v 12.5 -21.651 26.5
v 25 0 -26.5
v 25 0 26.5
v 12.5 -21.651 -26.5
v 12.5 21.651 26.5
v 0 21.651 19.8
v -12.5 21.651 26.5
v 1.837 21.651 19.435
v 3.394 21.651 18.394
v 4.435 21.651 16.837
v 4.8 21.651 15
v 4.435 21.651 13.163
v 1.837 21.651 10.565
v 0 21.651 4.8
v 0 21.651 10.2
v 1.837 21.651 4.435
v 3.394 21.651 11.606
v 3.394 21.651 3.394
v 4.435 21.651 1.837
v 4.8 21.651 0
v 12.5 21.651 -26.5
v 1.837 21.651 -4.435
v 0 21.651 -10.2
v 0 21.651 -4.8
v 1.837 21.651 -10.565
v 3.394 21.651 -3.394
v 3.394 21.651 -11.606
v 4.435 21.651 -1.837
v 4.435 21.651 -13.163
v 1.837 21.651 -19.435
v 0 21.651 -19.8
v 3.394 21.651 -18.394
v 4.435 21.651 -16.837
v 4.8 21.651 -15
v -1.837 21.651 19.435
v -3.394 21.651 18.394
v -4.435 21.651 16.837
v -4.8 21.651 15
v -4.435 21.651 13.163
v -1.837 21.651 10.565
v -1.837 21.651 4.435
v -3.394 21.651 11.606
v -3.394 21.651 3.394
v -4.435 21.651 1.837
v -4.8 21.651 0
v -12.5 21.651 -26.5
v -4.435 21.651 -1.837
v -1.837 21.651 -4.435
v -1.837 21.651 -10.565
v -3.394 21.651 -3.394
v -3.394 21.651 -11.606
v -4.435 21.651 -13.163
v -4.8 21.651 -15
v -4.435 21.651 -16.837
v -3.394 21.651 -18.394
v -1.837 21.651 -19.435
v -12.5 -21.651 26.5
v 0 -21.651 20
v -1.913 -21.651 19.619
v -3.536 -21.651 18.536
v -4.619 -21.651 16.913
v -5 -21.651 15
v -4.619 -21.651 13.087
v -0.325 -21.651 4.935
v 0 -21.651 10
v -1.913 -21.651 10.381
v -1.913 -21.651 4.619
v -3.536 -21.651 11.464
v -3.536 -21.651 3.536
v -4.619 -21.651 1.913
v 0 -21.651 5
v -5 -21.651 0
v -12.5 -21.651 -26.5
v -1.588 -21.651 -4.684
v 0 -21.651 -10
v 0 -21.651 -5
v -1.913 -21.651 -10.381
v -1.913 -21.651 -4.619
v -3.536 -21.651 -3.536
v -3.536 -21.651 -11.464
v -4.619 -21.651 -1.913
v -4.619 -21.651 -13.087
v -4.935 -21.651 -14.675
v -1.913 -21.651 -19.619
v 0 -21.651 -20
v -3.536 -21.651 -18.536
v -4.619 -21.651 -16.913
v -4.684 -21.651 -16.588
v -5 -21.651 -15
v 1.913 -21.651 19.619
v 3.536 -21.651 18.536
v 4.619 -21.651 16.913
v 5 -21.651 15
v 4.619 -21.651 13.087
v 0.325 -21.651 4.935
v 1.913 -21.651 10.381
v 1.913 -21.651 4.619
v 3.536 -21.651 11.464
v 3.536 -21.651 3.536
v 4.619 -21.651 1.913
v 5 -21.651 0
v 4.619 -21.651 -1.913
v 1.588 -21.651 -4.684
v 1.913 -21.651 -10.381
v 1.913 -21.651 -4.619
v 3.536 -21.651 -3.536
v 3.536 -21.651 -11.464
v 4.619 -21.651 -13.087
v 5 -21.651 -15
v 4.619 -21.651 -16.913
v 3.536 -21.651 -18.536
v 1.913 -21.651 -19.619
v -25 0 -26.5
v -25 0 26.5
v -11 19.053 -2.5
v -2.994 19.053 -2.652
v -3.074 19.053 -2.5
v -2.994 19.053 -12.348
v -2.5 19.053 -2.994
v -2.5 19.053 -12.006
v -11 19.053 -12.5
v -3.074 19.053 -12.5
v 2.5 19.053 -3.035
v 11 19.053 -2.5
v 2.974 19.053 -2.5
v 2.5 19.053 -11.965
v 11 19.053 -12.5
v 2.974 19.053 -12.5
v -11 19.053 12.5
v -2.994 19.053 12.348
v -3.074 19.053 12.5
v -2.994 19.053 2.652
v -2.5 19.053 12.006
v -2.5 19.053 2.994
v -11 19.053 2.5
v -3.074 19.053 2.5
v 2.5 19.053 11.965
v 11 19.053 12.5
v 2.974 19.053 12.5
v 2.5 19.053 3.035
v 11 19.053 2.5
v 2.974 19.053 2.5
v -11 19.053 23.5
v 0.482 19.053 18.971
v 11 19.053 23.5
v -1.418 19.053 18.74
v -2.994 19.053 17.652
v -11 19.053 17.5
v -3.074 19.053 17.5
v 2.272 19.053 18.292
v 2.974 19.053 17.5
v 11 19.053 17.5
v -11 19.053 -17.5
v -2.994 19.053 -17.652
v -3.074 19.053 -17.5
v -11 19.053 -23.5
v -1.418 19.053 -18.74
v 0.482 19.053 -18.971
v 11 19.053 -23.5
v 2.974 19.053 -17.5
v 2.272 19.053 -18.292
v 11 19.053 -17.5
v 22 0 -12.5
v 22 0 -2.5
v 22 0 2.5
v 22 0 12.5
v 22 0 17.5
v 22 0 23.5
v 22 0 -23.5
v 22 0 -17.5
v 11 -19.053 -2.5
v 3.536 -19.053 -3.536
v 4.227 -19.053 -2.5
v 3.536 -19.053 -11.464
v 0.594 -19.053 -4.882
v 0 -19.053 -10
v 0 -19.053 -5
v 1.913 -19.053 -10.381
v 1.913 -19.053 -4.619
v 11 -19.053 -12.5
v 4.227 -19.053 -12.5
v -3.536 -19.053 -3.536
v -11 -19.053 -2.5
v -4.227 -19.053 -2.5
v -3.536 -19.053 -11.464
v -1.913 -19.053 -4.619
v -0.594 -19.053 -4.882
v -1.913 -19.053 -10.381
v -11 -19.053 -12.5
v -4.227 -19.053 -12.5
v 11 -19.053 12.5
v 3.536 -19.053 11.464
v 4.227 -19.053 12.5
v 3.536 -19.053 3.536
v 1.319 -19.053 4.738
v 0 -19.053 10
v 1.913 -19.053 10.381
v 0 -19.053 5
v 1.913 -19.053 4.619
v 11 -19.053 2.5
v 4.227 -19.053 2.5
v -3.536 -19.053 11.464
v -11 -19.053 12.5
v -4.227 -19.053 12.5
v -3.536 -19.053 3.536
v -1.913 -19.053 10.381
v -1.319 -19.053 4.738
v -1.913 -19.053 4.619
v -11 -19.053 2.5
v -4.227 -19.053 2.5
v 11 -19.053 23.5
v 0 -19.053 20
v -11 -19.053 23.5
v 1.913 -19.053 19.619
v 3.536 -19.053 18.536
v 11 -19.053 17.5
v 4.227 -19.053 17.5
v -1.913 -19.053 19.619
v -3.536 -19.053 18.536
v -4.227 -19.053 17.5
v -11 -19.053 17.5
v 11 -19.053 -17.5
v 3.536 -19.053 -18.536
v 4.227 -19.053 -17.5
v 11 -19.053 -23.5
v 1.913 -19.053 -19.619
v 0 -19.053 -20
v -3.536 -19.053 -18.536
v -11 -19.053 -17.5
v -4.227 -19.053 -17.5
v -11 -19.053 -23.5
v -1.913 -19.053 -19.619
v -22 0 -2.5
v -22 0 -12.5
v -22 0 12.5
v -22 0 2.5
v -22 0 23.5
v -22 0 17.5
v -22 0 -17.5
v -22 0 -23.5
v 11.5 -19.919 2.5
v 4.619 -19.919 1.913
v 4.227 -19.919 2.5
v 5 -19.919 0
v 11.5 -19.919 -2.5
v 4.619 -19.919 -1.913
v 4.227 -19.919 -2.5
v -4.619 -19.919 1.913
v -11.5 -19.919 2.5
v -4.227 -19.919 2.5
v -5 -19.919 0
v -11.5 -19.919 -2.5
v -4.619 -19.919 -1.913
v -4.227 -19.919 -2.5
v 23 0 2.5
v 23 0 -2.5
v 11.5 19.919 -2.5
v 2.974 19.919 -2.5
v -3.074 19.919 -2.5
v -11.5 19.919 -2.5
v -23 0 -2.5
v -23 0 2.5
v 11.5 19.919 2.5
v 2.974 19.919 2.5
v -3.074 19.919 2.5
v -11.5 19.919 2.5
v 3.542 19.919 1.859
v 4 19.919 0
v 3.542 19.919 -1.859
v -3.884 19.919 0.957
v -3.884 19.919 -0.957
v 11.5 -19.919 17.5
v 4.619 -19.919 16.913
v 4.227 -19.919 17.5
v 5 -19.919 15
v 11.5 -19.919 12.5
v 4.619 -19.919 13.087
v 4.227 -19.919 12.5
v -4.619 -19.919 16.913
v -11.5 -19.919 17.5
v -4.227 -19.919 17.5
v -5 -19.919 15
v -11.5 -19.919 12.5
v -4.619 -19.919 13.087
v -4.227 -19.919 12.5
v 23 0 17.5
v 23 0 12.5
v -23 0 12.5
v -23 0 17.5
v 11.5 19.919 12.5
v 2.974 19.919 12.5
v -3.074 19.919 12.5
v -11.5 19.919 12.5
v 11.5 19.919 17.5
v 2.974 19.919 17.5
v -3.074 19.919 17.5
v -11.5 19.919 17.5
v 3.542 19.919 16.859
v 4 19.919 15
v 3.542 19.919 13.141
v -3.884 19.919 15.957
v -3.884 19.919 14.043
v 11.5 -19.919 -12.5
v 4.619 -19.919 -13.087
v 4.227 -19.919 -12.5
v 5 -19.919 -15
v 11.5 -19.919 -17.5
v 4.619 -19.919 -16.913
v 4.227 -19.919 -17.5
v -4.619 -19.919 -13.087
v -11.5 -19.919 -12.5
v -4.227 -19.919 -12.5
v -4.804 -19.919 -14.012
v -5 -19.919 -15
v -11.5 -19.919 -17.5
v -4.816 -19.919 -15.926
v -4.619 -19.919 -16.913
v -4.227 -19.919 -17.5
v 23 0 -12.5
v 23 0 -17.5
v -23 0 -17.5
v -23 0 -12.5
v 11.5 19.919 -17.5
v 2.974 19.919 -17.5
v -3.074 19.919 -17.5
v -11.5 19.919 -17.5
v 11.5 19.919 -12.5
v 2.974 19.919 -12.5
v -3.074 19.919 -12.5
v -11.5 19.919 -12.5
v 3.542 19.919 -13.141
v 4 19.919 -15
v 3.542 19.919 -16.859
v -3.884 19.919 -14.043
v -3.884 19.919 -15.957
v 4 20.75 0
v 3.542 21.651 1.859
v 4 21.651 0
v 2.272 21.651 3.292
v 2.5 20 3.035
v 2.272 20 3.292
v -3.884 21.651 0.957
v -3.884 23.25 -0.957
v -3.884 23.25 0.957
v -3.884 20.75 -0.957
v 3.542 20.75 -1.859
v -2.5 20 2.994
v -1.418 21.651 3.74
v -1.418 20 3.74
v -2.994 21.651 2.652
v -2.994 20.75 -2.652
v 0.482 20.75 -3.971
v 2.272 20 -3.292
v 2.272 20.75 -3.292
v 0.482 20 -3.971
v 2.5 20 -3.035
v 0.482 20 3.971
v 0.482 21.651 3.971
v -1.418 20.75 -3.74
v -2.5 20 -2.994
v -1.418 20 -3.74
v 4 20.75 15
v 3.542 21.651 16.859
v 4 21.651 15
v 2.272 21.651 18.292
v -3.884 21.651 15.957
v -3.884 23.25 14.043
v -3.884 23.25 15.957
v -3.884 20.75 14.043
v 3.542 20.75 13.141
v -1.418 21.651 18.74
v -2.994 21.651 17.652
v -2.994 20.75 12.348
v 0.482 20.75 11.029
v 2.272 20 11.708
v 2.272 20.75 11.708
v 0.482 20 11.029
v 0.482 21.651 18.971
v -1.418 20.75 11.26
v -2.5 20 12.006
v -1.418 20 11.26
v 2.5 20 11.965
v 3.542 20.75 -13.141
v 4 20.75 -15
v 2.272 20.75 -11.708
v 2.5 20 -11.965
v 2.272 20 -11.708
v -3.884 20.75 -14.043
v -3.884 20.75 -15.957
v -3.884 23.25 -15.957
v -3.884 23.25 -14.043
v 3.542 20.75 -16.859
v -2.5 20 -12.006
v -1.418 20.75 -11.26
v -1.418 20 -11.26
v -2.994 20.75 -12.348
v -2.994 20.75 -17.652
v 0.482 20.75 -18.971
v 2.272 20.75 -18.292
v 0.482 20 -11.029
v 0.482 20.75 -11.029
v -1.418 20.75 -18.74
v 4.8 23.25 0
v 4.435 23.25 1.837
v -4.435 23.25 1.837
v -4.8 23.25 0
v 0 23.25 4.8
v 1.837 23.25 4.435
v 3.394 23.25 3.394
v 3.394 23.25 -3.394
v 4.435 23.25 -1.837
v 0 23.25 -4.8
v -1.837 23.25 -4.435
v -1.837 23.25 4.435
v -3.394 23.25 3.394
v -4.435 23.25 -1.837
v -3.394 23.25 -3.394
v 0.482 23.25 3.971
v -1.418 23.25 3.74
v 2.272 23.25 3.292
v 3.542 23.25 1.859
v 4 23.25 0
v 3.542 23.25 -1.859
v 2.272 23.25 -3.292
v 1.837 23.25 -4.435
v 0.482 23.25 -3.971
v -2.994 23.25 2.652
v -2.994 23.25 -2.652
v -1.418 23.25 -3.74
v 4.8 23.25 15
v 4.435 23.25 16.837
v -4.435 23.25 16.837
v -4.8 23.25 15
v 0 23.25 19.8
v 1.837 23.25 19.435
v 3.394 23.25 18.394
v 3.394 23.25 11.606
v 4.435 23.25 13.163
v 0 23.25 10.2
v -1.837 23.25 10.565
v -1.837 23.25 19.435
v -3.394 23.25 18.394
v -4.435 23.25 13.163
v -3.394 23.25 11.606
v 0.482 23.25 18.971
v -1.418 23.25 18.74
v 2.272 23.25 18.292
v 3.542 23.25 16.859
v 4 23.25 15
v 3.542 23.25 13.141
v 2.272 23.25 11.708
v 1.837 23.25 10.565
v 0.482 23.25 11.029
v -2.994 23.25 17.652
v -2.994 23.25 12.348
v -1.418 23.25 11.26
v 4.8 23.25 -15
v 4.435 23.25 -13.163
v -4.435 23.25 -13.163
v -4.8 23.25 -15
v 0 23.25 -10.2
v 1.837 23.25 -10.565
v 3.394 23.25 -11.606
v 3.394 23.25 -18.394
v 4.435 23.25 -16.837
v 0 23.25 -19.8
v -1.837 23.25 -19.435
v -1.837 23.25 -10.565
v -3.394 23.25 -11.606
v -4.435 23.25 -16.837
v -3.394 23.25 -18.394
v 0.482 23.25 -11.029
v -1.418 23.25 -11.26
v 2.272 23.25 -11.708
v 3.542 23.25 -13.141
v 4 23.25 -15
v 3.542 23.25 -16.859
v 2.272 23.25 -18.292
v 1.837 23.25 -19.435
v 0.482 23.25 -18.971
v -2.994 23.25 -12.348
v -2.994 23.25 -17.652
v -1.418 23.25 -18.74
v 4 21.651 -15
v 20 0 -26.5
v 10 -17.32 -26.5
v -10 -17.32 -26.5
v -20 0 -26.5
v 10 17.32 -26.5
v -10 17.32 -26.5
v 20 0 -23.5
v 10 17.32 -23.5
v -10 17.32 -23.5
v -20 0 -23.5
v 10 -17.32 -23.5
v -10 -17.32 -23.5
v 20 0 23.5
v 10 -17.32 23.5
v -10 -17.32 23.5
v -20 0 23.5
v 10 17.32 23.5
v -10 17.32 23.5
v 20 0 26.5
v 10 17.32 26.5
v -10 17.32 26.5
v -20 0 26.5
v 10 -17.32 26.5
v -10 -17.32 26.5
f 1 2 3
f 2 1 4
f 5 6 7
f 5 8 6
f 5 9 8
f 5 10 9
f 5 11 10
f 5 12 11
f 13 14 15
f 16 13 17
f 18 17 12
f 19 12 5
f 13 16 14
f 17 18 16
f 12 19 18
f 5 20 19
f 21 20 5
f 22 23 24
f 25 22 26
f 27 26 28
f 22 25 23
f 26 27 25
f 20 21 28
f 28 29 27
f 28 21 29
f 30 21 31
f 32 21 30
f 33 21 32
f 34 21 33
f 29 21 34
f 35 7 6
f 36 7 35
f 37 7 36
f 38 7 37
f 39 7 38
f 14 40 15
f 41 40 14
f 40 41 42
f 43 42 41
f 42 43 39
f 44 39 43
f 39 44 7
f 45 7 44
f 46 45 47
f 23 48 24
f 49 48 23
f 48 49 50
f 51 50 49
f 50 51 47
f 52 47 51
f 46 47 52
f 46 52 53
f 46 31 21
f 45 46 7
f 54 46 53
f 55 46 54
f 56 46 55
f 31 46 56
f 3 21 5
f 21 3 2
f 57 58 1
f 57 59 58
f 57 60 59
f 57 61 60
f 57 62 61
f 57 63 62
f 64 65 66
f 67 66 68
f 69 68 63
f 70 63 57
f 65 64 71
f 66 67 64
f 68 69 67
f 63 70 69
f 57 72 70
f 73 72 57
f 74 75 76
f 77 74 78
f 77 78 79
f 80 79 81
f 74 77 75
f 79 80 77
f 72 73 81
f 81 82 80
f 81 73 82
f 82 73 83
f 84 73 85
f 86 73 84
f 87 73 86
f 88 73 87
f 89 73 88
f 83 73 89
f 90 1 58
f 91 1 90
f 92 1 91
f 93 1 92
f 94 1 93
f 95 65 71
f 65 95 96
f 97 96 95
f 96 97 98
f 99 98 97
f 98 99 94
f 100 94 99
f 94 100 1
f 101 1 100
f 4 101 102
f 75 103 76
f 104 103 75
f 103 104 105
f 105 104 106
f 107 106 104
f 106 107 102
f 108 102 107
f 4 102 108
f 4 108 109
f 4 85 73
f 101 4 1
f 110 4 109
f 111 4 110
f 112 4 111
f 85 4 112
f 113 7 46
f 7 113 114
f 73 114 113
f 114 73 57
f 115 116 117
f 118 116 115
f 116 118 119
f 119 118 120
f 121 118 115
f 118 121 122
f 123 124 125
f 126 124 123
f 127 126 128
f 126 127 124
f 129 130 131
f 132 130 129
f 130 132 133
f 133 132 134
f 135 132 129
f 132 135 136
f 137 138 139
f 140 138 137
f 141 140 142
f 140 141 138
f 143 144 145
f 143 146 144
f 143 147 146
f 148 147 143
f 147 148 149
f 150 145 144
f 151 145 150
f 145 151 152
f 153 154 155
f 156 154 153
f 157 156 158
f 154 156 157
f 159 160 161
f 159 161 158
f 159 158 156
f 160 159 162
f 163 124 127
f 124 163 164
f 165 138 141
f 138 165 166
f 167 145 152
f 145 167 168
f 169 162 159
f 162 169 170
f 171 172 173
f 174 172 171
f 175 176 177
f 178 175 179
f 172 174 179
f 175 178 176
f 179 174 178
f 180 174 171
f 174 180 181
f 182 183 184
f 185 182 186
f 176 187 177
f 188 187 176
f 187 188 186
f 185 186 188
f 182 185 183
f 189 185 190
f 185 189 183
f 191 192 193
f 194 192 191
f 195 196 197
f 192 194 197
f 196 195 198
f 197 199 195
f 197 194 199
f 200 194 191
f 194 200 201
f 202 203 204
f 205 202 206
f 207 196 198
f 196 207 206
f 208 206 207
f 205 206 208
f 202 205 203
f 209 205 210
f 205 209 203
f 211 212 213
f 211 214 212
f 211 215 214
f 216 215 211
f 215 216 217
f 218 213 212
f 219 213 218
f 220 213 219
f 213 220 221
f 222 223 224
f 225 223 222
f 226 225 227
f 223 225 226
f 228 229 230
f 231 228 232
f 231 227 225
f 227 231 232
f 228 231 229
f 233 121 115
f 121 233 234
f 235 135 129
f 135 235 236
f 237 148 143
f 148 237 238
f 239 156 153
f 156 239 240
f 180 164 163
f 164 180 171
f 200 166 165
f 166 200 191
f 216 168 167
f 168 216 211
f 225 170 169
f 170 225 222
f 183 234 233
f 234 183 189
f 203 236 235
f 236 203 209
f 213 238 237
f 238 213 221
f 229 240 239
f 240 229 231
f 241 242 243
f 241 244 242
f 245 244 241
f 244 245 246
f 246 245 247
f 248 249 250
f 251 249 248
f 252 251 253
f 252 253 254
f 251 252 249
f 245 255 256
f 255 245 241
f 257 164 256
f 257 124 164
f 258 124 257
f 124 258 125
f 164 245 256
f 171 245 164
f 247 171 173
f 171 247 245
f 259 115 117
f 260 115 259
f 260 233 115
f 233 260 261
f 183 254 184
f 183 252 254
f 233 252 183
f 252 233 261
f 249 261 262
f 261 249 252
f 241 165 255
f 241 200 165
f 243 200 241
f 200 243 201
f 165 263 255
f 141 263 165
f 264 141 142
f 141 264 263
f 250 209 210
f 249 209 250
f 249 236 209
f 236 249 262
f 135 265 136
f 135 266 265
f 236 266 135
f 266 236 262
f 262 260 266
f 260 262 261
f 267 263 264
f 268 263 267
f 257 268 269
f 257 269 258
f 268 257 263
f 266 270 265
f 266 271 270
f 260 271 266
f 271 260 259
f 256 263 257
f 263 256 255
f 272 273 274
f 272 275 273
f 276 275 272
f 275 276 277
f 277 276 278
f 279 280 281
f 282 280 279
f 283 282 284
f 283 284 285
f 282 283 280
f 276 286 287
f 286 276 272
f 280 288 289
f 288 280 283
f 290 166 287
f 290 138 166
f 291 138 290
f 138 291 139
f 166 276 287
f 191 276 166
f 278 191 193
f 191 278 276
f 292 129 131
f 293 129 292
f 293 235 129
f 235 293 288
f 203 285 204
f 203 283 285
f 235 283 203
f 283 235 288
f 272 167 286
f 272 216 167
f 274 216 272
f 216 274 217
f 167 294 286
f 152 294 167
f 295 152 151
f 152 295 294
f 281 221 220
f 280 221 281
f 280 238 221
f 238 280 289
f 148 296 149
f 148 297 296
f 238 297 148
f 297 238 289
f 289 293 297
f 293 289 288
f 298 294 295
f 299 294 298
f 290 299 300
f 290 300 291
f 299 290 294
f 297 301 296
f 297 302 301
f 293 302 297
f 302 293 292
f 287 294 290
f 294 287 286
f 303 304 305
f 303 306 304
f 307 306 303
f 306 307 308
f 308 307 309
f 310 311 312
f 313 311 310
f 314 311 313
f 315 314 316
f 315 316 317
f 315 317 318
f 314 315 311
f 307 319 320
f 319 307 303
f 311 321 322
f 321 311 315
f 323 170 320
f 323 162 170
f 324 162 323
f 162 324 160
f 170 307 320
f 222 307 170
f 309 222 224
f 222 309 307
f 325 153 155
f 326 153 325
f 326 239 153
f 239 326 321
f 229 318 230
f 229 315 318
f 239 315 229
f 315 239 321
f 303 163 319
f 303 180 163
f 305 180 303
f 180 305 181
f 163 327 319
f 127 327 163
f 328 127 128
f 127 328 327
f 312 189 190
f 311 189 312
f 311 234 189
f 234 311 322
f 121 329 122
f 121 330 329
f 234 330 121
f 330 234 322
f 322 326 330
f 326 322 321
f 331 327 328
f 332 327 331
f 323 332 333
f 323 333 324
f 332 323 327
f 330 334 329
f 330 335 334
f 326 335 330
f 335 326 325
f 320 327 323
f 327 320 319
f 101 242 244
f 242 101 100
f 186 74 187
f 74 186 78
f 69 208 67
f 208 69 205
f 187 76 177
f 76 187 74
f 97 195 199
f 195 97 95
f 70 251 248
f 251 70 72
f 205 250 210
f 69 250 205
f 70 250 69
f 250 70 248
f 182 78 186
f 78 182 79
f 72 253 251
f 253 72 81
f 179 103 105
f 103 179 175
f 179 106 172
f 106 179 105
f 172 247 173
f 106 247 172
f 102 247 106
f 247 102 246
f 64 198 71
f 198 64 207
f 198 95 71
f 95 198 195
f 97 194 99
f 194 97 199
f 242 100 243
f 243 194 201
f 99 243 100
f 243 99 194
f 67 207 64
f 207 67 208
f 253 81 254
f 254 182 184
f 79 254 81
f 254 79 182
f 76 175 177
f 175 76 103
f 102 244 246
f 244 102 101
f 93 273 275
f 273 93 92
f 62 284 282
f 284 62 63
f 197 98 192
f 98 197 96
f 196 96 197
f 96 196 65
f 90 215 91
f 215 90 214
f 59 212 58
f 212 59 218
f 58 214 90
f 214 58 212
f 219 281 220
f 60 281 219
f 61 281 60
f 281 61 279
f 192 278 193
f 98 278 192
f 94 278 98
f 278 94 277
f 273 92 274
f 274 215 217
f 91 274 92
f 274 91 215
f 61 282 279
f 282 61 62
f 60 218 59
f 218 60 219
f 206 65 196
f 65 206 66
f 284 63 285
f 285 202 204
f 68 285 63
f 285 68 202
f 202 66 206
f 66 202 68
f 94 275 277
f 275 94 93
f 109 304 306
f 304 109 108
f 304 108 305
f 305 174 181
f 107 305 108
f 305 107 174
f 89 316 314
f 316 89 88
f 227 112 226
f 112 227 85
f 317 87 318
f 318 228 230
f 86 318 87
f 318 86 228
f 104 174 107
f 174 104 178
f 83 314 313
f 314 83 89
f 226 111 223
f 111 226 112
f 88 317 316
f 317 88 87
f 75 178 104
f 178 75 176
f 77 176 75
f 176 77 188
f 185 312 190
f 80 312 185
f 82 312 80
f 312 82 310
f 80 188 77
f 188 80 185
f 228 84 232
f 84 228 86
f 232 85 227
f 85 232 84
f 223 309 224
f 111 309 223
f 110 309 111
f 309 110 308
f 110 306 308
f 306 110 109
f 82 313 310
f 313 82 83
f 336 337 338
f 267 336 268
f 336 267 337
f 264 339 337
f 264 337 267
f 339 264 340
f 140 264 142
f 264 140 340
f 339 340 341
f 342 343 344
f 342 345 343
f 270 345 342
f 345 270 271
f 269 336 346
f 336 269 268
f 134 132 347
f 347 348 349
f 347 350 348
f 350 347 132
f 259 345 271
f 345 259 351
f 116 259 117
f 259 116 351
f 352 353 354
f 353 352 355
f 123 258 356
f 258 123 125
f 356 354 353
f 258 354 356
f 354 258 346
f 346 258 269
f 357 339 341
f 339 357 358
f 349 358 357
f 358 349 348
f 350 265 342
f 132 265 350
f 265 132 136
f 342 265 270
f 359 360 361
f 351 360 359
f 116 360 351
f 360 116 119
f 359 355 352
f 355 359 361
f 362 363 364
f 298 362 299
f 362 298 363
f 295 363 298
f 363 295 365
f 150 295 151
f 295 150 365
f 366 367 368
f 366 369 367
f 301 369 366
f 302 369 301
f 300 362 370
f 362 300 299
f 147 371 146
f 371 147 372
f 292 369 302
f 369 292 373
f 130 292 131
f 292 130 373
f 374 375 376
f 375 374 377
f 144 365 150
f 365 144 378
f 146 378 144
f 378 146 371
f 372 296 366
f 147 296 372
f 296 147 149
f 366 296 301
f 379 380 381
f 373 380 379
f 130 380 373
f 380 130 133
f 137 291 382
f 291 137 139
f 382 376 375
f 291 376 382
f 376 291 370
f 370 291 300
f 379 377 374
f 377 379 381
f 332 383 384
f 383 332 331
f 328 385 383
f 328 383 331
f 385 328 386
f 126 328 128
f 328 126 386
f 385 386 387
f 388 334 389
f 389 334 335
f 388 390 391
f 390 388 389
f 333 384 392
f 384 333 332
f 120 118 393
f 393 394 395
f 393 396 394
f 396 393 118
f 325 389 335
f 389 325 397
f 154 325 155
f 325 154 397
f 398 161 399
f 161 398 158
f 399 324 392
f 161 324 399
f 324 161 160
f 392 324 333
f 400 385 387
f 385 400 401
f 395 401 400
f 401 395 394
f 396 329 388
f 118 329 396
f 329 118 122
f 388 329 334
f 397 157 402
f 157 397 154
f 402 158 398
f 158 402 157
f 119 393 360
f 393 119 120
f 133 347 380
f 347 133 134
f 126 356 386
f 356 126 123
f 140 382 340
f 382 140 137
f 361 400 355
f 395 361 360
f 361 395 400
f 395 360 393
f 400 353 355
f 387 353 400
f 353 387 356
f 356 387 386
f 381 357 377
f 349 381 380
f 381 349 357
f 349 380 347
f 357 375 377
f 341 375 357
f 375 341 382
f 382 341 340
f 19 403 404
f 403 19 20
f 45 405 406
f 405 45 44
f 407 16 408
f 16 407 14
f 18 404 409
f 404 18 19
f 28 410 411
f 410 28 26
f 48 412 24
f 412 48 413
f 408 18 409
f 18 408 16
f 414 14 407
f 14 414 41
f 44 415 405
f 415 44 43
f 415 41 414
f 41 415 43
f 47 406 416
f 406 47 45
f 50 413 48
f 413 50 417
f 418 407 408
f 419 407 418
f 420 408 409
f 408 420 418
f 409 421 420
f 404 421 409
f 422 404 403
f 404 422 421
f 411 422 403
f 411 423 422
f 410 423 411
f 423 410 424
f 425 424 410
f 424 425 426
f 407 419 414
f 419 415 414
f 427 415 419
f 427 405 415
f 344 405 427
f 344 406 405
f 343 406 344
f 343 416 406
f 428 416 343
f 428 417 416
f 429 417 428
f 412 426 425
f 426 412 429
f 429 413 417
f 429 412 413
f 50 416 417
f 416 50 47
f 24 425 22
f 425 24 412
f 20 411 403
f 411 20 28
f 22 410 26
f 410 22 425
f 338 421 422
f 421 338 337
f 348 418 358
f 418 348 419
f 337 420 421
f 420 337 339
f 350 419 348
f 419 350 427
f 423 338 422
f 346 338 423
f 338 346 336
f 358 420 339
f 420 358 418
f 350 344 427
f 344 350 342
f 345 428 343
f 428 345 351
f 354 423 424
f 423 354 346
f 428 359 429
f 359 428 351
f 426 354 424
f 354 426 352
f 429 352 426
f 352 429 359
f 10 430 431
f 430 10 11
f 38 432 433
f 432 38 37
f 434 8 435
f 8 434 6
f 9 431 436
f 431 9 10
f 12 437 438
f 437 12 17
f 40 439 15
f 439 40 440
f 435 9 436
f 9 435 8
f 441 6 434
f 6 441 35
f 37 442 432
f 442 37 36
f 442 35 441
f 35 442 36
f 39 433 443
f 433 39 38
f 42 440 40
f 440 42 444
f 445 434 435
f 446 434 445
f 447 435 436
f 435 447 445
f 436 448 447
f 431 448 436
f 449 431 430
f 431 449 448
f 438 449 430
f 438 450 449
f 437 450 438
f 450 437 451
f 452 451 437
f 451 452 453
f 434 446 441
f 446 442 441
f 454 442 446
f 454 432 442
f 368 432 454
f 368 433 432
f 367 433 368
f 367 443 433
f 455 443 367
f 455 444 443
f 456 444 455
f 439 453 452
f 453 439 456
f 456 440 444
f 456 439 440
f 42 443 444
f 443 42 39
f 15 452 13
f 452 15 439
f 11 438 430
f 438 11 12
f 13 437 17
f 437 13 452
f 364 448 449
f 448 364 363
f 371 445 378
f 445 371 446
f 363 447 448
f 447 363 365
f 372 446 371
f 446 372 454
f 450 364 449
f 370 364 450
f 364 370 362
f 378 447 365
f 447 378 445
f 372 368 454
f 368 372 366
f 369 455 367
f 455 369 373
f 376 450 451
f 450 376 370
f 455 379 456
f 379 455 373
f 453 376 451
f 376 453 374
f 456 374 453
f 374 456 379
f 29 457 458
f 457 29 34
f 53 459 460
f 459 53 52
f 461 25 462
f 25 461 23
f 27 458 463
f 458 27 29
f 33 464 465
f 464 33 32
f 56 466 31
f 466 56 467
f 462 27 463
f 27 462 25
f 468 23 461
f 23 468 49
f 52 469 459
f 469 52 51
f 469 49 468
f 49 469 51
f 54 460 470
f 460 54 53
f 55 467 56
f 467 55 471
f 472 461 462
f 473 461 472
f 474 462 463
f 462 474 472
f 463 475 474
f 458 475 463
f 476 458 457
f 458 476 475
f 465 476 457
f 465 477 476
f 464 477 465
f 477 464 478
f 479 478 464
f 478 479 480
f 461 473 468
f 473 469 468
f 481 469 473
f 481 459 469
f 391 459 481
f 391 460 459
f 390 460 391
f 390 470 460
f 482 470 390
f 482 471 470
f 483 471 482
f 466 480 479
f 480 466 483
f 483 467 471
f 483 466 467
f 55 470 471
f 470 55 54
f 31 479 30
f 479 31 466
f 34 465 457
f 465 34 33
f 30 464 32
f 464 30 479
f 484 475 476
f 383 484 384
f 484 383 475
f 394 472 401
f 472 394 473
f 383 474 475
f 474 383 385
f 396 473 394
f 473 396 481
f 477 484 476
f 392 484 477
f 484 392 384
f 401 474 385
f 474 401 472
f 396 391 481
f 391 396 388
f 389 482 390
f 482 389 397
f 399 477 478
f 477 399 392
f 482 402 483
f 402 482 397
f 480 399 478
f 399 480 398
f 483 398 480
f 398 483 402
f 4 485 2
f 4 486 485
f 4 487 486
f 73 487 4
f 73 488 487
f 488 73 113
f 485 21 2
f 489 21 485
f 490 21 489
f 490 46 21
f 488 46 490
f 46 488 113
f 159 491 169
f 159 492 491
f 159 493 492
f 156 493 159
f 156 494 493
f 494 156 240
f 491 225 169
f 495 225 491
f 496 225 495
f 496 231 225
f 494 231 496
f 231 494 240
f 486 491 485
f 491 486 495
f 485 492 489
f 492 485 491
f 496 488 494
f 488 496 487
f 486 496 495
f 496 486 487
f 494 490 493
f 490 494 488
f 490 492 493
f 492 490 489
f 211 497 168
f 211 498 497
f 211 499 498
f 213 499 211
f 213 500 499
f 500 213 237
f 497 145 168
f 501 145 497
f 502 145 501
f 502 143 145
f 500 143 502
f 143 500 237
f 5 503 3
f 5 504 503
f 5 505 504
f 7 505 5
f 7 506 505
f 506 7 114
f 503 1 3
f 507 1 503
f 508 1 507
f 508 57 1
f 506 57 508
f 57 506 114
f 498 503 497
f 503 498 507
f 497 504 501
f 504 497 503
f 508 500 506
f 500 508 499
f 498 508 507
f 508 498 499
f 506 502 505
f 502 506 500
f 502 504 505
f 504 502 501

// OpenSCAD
union(){
  difference(){
    difference(){
      linear_extrude(center = true, height = 50){
        circle($fn = 6, r = 25);
      }
      linear_extrude(center = true, height = 51){
        circle($fn = 6, r = 22);
      }
    }
    difference(){
      linear_extrude(center = true, height = 5){
        circle($fn = 6, r = 23);
      }
      linear_extrude(center = true, height = 6){
        circle($fn = 6, r = 20);
      }
    }
    translate(v = [0, 0, 15]){
      difference(){
        linear_extrude(center = true, height = 5){
          circle($fn = 6, r = 23);
        }
        linear_extrude(center = true, height = 6){
          circle($fn = 6, r = 20);
        }
      }
    }
    translate(v = [0, 0, -15]){
      difference(){
        linear_extrude(center = true, height = 5){
          circle($fn = 6, r = 23);
        }
        linear_extrude(center = true, height = 6){
          circle($fn = 6, r = 20);
        }
      }
    }
    translate(v = [0, -20, 0]){
      rotate(a = [90, 0, 0]){
        cylinder(center = true, h = 5, r = 5);
      }
    }
    translate(v = [0, -20, 15]){
      rotate(a = [90, 0, 0]){
        cylinder(center = true, h = 5, r = 5);
      }
    }
    translate(v = [0, -20, -15]){
      rotate(a = [90, 0, 0]){
        cylinder(center = true, h = 5, r = 5);
      }
    }
    translate(v = [0, 20, 0]){
      rotate(a = [90, 0, 0]){
        cylinder(center = true, h = 5, r = 4);
      }
    }
    translate(v = [0, 20, 15]){
      rotate(a = [90, 0, 0]){
        cylinder(center = true, h = 5, r = 4);
      }
    }
    translate(v = [0, 20, -15]){
      rotate(a = [90, 0, 0]){
        cylinder(center = true, h = 5, r = 4);
      }
    }
    translate(v = [0, 18, 0]){
      cube(center = true, size = [5, 4, 35]);
    }
  }
  translate(v = [0, 22, 0]){
    rotate(a = [90, 0, 0]){
      difference(){
        cylinder(center = true, h = 2.5, r = 4.8);
        cylinder(center = true, h = 3, r = 4);
      }
    }
  }
  translate(v = [0, 22, 15]){
    rotate(a = [90, 0, 0]){
      difference(){
        cylinder(center = true, h = 2.5, r = 4.8);
        cylinder(center = true, h = 3, r = 4);
      }
    }
  }
  translate(v = [0, 22, -15]){
    rotate(a = [90, 0, 0]){
      difference(){
        cylinder(center = true, h = 2.5, r = 4.8);
        cylinder(center = true, h = 3, r = 4);
      }
    }
  }
  translate(v = [0, 0, -25]){
    difference(){
      linear_extrude(center = true, height = 3){
        circle($fn = 6, r = 25);
      }
      linear_extrude(center = true, height = 4){
        circle($fn = 6, r = 20);
      }
    }
  }
  translate(v = [0, 0, 25]){
    difference(){
      linear_extrude(center = true, height = 3){
        circle($fn = 6, r = 25);
      }
      linear_extrude(center = true, height = 4){
        circle($fn = 6, r = 20);
      }
    }
  }
}
